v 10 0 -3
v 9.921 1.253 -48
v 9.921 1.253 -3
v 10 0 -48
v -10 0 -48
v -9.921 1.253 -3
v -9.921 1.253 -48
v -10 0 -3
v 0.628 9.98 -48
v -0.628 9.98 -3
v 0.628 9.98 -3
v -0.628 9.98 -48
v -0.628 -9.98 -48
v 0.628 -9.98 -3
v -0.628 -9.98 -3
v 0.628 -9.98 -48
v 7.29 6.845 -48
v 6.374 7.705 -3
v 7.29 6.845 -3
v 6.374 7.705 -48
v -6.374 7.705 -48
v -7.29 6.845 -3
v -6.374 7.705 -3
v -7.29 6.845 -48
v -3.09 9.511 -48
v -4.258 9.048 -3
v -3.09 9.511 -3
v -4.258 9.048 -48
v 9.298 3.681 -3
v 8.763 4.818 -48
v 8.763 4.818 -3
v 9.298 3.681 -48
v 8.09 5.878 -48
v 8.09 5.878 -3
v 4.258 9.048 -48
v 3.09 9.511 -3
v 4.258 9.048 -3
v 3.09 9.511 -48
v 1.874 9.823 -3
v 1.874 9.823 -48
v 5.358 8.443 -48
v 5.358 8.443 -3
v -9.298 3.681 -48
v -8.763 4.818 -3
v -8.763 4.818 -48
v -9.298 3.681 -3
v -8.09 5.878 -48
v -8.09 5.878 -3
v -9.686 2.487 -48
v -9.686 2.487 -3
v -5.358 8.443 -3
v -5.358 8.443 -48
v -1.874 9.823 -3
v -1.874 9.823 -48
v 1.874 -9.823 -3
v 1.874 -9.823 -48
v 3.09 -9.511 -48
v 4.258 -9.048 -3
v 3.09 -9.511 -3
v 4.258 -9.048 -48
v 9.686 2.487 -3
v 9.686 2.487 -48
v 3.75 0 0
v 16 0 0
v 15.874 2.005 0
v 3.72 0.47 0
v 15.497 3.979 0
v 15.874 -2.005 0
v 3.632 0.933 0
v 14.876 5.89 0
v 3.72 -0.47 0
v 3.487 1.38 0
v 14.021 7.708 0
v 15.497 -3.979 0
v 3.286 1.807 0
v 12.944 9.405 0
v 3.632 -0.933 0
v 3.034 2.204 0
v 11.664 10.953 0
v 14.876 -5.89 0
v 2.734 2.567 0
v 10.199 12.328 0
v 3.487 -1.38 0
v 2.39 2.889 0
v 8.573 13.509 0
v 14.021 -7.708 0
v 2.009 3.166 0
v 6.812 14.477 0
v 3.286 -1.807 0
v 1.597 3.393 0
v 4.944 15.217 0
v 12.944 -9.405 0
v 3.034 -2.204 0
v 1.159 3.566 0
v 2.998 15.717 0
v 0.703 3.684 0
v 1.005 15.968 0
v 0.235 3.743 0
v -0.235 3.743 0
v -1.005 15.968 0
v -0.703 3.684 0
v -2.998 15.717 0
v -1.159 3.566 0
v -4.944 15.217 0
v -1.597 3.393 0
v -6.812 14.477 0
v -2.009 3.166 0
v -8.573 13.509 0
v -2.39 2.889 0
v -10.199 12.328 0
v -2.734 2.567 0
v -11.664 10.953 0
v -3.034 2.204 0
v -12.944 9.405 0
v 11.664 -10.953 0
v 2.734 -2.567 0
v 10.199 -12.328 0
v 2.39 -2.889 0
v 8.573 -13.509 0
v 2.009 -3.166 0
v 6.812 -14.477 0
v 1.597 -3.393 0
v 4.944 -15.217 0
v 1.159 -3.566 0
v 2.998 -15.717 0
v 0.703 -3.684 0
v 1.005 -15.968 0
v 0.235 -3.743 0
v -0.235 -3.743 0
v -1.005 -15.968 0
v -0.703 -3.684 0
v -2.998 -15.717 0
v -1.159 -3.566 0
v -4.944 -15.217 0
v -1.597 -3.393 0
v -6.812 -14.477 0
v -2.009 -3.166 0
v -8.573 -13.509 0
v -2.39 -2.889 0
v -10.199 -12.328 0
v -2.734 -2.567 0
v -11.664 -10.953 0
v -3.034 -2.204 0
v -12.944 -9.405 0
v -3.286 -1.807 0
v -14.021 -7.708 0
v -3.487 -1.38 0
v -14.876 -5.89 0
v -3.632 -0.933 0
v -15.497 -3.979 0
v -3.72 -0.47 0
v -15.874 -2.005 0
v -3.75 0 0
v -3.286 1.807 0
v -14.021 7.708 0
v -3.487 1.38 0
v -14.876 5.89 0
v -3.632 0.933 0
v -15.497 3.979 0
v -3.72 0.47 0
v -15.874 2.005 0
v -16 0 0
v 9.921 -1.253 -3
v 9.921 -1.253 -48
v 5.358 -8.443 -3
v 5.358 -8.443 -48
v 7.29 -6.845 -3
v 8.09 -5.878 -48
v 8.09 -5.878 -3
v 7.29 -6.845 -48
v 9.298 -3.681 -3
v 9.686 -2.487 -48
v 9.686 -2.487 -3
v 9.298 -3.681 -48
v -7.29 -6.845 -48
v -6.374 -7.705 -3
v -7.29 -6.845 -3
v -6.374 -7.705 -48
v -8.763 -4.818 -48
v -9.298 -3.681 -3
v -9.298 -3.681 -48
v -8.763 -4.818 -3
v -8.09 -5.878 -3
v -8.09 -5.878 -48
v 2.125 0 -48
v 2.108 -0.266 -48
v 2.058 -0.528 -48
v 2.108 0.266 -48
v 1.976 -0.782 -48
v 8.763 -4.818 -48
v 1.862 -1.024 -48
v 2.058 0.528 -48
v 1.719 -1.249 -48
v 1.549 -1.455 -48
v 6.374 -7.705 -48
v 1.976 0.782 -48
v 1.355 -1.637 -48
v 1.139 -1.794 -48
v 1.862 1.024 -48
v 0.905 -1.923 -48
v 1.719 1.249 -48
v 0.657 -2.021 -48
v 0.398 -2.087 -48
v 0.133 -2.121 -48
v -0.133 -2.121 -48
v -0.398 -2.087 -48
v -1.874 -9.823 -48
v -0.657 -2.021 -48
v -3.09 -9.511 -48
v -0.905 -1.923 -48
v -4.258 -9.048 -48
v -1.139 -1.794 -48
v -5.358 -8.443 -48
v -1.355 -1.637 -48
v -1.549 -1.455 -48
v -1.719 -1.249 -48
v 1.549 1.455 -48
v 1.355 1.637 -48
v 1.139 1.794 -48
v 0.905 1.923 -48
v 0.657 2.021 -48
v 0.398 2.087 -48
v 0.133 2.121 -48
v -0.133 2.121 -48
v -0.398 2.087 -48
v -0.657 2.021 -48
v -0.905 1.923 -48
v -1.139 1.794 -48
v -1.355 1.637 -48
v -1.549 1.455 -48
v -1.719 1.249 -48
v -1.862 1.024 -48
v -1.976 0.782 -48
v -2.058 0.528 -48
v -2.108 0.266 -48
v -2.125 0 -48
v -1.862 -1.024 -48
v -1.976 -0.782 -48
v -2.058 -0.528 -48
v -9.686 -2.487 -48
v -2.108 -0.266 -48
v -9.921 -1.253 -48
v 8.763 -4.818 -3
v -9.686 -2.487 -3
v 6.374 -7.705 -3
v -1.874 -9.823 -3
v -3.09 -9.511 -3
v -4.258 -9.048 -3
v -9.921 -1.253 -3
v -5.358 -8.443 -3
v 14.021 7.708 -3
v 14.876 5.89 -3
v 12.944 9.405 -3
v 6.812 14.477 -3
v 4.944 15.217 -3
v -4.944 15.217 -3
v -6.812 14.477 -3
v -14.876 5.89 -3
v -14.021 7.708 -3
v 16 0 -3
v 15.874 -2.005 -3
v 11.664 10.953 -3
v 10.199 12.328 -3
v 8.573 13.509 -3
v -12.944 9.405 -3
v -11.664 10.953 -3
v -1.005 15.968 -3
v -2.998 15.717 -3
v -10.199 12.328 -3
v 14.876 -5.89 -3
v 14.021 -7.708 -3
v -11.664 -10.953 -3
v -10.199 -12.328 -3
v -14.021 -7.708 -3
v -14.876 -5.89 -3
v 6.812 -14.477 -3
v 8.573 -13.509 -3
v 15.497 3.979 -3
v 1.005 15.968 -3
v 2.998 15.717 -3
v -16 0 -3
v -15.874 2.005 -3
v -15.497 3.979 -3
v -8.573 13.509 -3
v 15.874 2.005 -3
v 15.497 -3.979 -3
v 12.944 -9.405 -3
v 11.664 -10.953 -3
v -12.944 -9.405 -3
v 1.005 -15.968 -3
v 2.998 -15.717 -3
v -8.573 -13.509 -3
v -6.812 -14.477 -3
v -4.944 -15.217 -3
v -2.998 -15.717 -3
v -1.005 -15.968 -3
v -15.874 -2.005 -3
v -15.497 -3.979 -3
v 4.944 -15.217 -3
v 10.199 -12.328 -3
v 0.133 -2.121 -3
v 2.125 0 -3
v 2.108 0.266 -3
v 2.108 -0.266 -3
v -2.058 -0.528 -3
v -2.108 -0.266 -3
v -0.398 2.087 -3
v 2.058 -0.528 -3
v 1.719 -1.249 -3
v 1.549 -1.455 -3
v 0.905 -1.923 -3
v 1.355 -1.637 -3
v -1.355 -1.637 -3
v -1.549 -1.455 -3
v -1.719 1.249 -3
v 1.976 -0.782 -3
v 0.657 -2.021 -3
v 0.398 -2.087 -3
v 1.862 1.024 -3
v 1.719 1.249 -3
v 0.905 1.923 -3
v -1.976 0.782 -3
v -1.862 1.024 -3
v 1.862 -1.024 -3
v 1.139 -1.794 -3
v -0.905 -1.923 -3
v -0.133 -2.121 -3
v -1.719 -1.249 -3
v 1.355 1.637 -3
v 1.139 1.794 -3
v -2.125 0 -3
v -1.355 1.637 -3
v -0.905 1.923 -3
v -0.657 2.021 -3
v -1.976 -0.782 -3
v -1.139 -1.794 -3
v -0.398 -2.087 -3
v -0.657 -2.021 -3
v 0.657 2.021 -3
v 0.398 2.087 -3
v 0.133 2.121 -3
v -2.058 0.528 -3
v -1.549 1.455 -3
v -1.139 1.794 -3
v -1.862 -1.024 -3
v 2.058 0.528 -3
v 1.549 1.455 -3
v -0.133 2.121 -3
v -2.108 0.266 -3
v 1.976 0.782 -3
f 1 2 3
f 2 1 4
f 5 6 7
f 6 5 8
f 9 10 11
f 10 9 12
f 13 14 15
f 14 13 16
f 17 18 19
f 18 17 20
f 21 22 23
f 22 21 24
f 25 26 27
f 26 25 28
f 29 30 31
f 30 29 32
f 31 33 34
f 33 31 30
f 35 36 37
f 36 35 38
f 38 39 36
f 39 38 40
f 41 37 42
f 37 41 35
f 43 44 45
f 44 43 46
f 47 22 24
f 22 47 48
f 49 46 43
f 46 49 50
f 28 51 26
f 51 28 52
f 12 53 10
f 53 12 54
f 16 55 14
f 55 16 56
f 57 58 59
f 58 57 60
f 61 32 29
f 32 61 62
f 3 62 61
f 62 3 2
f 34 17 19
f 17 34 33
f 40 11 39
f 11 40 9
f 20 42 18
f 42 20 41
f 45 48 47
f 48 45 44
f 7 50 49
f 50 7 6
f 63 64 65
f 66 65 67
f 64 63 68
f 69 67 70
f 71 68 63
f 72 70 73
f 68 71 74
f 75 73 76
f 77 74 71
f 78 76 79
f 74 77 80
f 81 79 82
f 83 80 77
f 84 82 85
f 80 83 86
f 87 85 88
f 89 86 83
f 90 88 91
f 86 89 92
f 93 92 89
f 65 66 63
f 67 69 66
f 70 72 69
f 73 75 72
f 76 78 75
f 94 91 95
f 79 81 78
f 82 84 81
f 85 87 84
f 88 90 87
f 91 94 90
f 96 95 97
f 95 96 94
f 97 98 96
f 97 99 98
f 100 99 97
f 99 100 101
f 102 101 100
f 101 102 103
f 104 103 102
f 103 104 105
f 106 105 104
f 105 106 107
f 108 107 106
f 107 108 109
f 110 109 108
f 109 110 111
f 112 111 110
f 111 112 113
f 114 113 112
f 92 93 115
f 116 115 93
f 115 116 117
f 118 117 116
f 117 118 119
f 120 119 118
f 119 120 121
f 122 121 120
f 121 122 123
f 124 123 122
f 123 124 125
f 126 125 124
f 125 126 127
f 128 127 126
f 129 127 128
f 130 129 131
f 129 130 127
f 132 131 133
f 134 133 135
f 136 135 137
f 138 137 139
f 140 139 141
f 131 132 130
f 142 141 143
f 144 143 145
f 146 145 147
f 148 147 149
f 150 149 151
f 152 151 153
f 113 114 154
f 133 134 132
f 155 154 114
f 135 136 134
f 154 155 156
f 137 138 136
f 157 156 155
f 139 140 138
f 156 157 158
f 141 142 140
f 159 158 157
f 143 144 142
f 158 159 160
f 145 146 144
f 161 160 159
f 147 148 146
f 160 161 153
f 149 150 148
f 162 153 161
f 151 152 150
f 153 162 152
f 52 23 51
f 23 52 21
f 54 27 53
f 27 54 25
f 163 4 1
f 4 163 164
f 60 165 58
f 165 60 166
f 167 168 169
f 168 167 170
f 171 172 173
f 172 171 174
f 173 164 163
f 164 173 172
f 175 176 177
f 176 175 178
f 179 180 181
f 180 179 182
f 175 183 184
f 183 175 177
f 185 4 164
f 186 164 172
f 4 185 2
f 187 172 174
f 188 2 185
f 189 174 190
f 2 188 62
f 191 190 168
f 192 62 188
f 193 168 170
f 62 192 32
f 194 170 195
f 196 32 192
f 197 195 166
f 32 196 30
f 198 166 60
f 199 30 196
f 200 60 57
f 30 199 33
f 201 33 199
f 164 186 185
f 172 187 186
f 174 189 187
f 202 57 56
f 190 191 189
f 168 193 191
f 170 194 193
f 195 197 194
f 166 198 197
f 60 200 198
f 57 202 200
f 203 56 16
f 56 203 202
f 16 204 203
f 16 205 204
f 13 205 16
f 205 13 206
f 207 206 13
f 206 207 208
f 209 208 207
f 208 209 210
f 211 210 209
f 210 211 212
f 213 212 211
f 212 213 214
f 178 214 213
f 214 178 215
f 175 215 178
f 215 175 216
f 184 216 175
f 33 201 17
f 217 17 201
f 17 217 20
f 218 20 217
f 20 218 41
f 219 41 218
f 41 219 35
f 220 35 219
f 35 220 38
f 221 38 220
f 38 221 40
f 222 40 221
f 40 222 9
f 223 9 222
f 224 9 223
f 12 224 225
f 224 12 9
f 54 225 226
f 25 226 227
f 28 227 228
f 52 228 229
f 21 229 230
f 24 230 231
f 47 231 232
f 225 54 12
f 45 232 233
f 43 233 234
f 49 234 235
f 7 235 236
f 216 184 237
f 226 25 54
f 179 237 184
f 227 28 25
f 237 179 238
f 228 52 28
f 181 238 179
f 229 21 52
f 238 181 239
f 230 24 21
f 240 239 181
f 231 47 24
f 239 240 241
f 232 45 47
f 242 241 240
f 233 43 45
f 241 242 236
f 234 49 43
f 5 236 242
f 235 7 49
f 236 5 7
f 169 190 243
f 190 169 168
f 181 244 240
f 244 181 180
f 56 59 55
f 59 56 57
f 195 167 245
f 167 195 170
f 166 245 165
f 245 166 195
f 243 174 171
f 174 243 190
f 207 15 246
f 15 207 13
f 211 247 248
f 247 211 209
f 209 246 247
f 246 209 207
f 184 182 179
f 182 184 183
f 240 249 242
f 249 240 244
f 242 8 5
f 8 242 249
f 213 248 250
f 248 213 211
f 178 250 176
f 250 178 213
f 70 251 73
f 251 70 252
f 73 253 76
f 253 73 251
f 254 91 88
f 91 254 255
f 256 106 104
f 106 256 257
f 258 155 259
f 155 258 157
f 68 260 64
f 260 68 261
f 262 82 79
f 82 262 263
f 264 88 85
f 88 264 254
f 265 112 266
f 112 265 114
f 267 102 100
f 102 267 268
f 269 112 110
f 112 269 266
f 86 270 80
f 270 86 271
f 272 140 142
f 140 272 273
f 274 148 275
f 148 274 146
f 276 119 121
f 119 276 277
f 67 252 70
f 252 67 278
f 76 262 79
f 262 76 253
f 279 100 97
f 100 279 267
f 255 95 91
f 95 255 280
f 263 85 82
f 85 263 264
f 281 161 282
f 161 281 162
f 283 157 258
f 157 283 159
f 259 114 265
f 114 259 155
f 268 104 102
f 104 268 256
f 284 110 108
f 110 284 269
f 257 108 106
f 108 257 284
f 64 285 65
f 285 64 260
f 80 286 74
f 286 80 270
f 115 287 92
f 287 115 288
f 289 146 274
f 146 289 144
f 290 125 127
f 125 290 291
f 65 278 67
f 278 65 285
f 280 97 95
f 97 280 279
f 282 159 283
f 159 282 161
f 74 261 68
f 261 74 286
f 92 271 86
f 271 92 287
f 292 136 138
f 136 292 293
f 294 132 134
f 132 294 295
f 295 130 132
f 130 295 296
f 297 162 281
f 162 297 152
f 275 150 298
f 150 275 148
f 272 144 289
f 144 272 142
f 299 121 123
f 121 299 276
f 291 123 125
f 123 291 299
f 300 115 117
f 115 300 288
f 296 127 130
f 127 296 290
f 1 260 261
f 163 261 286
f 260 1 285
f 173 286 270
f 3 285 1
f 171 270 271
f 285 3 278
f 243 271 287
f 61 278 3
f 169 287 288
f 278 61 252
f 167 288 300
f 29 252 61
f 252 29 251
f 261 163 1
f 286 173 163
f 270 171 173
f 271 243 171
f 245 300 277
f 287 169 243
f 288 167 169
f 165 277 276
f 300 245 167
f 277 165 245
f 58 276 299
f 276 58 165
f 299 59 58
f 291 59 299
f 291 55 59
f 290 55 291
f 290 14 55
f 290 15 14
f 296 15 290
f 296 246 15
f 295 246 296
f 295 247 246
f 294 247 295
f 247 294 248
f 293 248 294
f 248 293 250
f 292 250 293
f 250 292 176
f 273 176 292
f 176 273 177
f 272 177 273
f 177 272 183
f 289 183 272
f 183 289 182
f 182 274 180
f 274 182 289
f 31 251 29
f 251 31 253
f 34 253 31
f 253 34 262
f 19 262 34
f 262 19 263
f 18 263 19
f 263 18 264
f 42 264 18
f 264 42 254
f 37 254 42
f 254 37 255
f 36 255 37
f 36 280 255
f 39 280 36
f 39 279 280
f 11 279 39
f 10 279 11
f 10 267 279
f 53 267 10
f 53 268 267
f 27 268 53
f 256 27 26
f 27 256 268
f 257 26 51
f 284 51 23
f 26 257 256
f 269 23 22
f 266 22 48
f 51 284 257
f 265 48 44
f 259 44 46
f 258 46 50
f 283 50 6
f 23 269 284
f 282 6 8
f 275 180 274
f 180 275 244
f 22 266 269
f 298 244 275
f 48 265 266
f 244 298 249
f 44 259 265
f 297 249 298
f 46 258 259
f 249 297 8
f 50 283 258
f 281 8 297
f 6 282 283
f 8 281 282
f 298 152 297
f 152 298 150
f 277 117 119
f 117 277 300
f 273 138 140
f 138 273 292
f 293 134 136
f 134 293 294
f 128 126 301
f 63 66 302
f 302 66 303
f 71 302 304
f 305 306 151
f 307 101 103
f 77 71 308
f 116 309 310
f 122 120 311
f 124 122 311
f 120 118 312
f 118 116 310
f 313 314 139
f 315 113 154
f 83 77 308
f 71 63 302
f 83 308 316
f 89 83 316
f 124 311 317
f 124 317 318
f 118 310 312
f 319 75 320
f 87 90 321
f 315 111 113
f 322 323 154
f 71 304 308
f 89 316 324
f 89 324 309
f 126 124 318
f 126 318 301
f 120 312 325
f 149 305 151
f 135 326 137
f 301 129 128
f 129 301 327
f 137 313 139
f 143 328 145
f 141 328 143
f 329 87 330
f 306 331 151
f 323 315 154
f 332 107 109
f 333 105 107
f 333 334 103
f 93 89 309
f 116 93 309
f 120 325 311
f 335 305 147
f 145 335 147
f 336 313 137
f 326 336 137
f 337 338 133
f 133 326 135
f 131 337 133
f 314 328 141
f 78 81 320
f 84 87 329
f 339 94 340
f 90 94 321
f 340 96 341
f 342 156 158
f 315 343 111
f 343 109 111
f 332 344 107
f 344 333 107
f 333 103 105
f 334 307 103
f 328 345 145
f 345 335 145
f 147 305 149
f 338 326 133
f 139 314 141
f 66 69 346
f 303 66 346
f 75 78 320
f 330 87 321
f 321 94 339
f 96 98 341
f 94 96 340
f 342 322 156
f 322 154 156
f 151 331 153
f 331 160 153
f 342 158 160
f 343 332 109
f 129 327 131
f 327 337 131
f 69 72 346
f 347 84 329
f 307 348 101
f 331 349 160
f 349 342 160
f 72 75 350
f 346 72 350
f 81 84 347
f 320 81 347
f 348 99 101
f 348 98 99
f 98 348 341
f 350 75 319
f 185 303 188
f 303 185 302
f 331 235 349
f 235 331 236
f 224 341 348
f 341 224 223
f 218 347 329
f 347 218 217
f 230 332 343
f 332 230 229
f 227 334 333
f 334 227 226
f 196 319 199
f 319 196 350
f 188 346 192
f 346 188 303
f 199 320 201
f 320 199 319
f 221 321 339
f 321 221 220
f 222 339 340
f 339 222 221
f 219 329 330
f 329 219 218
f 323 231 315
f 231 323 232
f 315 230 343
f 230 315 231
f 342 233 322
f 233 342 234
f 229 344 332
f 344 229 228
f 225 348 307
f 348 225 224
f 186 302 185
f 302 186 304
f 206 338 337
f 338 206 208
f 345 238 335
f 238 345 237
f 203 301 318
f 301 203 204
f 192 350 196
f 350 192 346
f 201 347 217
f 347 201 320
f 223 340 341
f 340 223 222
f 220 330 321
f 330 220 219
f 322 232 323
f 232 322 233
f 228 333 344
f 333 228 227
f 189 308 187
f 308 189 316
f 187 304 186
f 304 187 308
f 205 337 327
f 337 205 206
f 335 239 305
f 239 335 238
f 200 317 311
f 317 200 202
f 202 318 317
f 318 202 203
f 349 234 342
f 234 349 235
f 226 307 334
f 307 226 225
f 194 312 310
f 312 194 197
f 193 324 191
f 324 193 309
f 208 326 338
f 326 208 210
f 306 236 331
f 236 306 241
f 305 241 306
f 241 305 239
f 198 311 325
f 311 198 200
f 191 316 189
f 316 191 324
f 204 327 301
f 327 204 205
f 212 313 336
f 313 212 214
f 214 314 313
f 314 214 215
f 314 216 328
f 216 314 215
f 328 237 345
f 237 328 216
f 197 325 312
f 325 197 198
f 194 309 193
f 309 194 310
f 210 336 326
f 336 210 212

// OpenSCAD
$fn = 50;


difference() {
	union() {
		translate(v = [0, 0, -48.0000000000]) {
			cylinder(h = 48, r = 10.0000000000);
		}
		translate(v = [0, 0, -3.0000000000]) {
			cylinder(h = 3, r = 16.0000000000);
		}
	}
	union() {
		translate(v = [0, 0, 0]) {
			rotate(a = [0, 0, 0]) {
				difference() {
					union() {
						#translate(v = [0, 0, -48.0000000000]) {
							cylinder(h = 48, r = 2.0000000000);
						}
						#translate(v = [0, 0, -3]) {
							cylinder(h = 3, r1 = 2.1250000000, r2 = 3.7500000000);
						}
						#translate(v = [0, 0, -48.0000000000]) {
							cylinder(h = 48, r = 2.1250000000);
						}
						#translate(v = [0, 0, -48.0000000000]) {
							cylinder(h = 48, r = 2.0000000000);
						}
					}
					union();
				}
			}
		}
	}
}
